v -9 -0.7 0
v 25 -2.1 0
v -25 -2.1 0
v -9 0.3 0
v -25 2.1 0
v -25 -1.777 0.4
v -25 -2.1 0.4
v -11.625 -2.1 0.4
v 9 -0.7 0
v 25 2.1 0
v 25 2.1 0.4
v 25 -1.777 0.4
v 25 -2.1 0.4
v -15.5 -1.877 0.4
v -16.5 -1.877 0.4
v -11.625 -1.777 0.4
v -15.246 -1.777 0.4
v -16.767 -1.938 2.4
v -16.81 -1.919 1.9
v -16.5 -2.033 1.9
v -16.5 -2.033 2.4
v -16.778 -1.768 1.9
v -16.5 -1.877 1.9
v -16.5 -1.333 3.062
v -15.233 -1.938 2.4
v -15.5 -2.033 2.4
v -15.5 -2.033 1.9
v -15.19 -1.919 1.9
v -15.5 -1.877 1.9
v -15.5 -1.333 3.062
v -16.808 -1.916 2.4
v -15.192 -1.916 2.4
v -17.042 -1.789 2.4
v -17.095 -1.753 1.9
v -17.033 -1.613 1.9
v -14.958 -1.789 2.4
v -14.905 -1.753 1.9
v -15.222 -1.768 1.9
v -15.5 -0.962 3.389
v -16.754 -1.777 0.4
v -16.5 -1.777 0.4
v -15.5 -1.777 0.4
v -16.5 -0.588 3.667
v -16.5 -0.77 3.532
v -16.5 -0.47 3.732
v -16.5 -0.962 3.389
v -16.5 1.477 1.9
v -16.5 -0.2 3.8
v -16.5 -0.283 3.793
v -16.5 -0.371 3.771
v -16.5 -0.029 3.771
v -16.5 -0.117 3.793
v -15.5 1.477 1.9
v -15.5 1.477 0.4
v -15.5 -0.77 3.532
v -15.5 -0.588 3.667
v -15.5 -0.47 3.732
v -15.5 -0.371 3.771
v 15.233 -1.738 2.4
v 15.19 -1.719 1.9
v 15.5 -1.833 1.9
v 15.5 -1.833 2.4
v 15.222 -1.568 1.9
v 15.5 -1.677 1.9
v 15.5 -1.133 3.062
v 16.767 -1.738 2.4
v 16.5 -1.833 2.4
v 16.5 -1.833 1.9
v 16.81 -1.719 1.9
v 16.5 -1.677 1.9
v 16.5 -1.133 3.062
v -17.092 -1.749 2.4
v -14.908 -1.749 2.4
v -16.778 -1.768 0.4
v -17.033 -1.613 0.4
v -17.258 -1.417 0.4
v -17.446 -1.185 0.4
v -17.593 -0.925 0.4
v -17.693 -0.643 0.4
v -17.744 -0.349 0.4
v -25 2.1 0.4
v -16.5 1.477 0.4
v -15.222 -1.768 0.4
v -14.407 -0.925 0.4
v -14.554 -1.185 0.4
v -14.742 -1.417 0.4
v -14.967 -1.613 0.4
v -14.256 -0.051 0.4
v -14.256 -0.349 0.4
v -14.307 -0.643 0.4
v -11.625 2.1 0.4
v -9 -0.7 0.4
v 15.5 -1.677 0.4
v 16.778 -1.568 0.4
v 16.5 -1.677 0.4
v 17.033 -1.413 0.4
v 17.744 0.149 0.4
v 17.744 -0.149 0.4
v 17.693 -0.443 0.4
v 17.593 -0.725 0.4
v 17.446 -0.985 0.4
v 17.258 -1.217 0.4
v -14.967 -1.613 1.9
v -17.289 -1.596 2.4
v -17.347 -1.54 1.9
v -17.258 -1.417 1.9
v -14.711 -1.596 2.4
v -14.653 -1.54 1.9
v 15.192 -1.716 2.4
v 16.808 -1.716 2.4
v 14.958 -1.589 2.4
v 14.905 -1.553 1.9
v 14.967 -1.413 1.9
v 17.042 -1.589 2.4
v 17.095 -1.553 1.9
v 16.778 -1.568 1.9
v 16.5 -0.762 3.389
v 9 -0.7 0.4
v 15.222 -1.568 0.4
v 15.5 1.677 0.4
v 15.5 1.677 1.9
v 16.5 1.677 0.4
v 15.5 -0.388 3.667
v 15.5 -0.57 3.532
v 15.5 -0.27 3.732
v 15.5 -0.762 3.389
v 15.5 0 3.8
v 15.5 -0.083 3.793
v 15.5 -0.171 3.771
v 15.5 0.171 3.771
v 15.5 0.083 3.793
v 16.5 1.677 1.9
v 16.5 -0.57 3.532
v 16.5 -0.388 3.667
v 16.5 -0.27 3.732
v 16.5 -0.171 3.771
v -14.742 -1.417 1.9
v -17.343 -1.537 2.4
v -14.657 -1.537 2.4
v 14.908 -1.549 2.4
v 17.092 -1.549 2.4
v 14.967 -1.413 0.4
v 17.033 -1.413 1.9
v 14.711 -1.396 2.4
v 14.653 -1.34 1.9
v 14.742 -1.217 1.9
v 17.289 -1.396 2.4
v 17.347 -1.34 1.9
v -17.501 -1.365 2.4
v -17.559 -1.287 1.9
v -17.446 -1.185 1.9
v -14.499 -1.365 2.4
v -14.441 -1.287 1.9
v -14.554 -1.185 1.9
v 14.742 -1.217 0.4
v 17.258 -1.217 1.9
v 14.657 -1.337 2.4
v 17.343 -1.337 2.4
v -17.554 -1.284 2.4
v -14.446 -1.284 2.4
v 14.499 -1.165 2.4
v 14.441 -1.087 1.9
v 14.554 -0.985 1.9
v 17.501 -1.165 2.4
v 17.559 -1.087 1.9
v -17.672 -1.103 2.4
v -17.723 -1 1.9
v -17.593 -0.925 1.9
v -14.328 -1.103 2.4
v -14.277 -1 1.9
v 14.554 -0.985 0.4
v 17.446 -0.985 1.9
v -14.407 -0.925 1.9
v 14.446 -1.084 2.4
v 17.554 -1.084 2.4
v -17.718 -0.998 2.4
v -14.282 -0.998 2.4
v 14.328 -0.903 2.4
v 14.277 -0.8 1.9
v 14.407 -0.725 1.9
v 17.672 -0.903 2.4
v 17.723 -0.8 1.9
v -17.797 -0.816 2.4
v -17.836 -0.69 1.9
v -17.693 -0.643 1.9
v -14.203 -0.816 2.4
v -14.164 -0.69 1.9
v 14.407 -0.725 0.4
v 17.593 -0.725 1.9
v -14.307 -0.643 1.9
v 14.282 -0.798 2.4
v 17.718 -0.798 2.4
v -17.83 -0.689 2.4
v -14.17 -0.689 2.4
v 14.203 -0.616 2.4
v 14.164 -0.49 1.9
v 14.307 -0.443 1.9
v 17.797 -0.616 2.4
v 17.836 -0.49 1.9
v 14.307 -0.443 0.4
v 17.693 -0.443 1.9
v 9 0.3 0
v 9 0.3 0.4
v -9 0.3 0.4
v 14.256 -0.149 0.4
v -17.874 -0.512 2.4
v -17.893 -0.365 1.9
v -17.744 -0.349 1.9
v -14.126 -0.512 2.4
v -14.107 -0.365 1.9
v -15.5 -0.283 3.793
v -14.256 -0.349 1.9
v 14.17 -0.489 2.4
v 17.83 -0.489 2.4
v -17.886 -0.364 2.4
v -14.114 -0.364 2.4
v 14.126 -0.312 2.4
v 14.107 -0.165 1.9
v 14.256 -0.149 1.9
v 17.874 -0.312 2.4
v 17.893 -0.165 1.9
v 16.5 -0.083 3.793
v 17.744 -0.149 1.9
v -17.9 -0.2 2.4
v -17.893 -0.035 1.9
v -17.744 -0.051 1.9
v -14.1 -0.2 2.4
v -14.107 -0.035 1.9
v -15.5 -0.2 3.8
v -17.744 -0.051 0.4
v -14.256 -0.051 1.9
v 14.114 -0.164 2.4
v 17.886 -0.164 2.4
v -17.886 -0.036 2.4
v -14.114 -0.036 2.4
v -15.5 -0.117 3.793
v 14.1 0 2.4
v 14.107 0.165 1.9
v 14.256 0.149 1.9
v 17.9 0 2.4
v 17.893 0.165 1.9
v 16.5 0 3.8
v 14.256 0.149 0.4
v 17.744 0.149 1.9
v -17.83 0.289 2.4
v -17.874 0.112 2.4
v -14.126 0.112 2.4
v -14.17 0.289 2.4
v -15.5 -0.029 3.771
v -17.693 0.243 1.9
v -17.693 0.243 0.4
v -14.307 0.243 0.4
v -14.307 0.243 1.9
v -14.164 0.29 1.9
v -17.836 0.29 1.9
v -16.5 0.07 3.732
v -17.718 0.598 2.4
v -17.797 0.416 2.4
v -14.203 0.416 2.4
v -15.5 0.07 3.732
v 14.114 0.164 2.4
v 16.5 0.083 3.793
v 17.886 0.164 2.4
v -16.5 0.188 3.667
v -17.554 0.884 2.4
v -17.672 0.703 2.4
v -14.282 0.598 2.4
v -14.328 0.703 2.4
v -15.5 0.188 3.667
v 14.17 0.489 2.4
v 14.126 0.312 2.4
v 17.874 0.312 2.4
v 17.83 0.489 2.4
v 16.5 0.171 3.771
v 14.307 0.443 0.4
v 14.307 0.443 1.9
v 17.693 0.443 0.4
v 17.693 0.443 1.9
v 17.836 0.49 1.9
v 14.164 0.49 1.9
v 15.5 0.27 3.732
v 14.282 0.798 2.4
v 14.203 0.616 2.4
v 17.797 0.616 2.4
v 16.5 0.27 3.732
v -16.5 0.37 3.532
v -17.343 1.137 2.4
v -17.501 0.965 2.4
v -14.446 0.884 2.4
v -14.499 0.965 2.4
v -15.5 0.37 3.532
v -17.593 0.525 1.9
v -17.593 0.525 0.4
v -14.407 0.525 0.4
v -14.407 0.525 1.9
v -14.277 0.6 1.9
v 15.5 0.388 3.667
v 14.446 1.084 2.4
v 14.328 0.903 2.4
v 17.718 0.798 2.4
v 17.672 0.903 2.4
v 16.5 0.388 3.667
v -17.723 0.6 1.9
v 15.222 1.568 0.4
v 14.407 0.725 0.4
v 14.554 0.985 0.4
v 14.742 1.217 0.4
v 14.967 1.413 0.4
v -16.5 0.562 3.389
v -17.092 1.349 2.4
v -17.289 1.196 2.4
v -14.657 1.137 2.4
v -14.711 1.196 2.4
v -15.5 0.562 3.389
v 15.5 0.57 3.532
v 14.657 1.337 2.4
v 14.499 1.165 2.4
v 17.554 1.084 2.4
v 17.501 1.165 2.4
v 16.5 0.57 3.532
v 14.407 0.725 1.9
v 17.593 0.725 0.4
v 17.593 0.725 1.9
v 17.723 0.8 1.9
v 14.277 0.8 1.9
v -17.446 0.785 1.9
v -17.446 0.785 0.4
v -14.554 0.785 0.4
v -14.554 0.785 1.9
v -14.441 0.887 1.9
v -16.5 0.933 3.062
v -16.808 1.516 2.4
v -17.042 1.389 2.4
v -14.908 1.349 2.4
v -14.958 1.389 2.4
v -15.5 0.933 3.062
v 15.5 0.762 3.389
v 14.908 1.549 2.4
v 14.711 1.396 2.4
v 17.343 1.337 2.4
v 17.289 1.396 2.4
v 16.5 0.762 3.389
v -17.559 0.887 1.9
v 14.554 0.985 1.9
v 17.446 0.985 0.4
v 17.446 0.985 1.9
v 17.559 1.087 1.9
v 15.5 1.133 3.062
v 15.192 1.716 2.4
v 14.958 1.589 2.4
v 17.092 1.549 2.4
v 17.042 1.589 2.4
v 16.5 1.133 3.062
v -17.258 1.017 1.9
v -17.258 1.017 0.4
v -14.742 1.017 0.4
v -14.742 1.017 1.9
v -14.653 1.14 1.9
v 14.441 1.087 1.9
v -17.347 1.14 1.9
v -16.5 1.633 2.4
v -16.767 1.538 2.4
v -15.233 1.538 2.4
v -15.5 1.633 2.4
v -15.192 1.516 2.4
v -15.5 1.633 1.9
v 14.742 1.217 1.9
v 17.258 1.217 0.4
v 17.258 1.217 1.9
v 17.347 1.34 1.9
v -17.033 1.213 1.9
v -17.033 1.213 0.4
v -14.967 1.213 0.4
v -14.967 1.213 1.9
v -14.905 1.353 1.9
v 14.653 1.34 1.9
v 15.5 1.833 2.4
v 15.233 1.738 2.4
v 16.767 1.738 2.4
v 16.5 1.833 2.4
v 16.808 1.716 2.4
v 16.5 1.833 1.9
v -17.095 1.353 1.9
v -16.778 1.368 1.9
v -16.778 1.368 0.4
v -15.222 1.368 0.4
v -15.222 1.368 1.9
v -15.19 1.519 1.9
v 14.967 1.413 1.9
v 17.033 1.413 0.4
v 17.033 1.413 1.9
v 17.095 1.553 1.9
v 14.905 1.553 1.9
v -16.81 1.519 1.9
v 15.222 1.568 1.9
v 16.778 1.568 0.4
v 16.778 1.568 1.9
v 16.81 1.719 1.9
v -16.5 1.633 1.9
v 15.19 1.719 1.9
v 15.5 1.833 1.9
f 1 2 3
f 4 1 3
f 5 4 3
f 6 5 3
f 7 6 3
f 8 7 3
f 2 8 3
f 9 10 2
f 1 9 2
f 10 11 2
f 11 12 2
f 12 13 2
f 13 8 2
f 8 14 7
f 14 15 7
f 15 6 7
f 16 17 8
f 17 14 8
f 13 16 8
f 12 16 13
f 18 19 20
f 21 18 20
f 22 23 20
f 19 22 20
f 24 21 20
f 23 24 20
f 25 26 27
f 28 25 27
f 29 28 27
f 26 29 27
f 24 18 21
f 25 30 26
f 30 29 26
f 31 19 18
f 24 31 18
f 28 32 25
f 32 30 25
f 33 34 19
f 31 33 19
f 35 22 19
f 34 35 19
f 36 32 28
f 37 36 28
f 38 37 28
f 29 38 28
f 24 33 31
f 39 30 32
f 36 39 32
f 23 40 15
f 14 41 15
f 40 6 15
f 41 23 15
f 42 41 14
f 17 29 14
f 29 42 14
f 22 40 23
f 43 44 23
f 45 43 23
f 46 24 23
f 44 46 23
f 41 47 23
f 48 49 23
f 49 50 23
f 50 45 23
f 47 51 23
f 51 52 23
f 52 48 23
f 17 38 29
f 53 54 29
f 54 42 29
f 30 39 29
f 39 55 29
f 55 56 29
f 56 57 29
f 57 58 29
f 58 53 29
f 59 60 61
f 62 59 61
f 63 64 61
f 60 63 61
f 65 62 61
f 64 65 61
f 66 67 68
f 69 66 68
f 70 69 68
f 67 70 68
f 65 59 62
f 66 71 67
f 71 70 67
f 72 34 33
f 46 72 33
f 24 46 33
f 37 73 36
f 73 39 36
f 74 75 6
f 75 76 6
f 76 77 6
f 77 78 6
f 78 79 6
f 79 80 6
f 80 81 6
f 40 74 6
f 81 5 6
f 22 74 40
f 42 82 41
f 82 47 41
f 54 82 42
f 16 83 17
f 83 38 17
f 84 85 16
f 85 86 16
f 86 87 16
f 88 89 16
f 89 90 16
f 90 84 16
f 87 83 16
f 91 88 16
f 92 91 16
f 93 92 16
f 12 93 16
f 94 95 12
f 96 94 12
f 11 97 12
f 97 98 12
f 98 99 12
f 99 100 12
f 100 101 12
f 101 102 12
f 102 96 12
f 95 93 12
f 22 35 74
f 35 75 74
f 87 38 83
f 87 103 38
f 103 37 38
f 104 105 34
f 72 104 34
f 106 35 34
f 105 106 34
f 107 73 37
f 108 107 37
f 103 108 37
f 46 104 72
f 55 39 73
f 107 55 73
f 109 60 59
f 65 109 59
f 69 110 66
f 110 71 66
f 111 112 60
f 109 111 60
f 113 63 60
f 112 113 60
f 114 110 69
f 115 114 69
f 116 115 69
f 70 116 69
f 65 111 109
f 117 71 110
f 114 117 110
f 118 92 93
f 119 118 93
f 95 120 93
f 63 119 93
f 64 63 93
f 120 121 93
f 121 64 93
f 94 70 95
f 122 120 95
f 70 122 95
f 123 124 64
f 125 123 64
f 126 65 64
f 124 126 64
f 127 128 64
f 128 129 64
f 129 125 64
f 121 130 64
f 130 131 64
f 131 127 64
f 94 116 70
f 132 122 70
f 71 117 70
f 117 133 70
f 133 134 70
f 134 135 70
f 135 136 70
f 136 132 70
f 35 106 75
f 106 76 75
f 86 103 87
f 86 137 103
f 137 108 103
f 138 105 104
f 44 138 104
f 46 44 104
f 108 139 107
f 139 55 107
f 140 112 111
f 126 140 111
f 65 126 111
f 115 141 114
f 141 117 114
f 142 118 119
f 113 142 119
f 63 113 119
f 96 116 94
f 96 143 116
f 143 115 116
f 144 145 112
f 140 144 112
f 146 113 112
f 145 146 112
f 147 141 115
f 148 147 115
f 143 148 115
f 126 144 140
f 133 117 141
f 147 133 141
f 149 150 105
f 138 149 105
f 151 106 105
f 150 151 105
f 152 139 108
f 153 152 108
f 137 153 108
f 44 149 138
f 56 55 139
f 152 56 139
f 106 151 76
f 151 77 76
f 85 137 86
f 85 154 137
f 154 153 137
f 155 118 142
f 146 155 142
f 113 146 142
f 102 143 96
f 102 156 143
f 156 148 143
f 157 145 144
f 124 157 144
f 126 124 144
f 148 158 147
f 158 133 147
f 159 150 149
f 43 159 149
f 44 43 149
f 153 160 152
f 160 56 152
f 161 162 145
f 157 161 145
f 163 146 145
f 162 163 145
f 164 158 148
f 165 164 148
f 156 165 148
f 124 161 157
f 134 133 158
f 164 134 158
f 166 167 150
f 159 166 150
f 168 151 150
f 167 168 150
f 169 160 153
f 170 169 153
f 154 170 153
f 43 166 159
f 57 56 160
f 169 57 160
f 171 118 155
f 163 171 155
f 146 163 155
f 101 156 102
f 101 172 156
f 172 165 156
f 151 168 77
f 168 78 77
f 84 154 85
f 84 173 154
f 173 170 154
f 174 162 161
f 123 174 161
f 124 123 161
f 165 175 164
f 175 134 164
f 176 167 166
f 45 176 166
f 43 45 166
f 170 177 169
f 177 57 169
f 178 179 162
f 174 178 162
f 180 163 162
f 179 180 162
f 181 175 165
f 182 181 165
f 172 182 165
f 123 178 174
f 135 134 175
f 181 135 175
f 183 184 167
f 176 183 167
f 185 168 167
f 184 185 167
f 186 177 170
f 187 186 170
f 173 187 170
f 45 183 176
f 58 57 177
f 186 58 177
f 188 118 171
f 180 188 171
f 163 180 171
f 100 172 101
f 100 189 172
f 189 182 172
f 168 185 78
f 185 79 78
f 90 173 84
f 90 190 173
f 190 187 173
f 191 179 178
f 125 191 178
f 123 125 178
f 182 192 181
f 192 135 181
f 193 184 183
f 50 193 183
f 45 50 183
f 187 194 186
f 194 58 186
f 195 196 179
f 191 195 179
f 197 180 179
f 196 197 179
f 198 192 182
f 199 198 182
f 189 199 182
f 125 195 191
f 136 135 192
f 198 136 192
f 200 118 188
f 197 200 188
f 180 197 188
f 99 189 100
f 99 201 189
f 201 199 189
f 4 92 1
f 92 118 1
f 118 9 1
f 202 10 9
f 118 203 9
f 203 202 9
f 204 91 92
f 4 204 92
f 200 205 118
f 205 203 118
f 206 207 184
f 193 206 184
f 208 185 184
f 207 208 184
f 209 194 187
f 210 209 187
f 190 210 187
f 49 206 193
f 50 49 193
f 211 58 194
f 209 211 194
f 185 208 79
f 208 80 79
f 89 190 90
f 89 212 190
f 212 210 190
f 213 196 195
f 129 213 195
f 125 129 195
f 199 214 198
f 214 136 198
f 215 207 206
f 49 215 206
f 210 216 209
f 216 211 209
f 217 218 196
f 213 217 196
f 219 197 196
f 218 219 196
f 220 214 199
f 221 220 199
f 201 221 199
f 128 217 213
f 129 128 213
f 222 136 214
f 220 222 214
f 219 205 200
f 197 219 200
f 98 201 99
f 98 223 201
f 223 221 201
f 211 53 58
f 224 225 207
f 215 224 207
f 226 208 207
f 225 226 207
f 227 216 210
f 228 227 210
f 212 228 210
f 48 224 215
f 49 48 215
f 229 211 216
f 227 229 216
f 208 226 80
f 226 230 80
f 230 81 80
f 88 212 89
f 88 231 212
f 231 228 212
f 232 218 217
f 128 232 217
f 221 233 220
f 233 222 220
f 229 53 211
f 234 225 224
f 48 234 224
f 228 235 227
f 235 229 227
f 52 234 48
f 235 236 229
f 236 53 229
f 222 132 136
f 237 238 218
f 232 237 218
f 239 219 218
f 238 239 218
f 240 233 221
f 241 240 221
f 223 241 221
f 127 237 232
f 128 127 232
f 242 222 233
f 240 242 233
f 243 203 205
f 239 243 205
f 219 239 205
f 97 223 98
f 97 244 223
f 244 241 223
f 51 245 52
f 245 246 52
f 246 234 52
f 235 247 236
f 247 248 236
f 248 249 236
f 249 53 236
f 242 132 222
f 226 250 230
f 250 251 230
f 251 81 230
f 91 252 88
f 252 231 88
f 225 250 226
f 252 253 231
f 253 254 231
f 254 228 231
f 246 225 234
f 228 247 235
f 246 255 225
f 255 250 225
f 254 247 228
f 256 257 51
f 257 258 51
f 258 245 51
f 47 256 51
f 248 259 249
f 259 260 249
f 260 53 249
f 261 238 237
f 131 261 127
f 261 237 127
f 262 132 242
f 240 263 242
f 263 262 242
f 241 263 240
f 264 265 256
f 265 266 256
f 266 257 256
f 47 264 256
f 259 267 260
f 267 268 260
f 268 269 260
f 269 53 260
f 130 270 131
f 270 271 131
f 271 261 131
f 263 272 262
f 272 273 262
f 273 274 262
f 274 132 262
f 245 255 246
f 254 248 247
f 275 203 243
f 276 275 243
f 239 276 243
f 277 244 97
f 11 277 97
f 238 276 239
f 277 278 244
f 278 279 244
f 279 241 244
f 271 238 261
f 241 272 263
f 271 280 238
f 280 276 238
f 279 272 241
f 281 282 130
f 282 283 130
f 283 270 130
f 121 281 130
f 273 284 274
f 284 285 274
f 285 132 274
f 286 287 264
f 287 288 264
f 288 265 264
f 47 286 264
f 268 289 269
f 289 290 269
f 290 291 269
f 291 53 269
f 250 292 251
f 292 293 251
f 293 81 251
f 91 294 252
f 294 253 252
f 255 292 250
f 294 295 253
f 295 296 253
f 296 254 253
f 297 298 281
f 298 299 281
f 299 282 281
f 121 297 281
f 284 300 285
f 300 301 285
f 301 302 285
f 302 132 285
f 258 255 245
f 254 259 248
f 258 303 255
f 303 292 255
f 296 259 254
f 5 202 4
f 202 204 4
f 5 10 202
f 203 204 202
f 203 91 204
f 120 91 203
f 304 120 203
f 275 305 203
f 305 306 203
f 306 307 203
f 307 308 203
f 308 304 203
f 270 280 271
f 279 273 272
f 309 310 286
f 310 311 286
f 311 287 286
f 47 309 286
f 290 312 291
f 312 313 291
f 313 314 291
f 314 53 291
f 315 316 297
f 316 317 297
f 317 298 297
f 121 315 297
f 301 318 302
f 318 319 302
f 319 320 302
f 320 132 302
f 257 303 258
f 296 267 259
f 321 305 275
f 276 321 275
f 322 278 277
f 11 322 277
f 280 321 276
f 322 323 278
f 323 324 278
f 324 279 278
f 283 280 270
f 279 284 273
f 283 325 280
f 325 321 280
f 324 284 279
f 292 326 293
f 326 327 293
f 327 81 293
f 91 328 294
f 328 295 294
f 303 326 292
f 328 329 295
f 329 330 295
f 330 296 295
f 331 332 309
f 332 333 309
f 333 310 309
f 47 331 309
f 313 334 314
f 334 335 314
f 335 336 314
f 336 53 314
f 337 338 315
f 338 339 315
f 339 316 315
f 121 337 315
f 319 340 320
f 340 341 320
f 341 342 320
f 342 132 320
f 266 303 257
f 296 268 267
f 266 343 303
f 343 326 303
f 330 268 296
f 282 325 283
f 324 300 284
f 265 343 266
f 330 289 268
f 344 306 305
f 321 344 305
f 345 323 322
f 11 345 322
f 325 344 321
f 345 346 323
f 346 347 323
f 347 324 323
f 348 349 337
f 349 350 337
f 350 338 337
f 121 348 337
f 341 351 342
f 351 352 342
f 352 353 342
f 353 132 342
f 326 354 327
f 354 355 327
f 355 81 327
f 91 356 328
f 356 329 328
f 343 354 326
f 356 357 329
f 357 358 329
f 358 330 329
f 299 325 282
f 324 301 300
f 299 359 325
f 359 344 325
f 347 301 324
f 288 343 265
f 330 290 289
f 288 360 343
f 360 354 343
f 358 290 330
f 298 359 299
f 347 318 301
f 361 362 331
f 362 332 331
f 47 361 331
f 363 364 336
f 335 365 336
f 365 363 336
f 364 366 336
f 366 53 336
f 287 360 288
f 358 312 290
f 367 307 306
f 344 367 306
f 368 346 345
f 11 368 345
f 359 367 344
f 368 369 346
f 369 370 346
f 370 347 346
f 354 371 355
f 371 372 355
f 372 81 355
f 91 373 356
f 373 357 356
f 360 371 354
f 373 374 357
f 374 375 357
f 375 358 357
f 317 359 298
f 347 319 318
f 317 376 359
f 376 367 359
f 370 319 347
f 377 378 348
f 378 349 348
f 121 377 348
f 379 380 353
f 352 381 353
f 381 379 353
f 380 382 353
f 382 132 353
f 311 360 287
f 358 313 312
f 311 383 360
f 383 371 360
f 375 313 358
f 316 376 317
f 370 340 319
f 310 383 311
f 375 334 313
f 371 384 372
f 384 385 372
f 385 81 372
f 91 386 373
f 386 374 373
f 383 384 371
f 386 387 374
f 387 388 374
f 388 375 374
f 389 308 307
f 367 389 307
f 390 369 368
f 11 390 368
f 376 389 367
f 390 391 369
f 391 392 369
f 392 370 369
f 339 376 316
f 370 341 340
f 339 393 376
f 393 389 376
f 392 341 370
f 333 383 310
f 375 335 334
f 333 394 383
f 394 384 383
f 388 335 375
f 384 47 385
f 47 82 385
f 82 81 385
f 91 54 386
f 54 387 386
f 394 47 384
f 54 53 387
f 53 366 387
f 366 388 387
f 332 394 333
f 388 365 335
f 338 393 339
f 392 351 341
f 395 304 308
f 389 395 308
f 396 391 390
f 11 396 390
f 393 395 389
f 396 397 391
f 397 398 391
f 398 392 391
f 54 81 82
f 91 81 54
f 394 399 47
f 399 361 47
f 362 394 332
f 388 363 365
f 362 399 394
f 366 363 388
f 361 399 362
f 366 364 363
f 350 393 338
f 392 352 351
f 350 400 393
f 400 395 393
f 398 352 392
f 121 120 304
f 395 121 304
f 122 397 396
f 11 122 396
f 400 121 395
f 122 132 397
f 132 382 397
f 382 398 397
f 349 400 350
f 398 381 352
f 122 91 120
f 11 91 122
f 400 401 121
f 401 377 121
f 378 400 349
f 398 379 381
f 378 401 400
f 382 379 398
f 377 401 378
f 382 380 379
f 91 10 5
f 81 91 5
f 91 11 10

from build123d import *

# Parameters (mm, degrees)
SKICA2_W                 = 50
SKICA2_H                 = 4.2
SKICA2_W_2               = 18
SKICA2_H_2               = 1
P_IDAT_VYSUNUT_M2_DEPTH  = 0.4
SKICA3_R                 = 1.75
P_IDAT_VYSUNUT_M3_DEPTH  = 1.5
SKICA5_R                 = 1.9
P_IDAT_VYSUNUT_M5_DEPTH  = 2
ZKOSEN_2_SIZE            = 1.5
SKICA7_W                 = 1
SKICA7_H                 = 5
ODEBRAT_VYSUNUT_M1_DEPTH = 3.5


with BuildPart() as part:
    # Skica2 → Přidat vysunutím2 (new body)
    with BuildSketch(Plane.XY):
        Rectangle(SKICA2_W, SKICA2_H)
        with Locations((0, -0.2)):
            Rectangle(SKICA2_W_2, SKICA2_H_2, mode=Mode.SUBTRACT)
    extrude(amount=P_IDAT_VYSUNUT_M2_DEPTH)

    # Skica3 → Přidat vysunutím3 (add)
    with BuildSketch(Plane.XY.offset(0.4)):
        with Locations((-16, -0.2)):
            Circle(SKICA3_R)
        with Locations((16, 0)):
            Circle(SKICA3_R)
    extrude(amount=P_IDAT_VYSUNUT_M3_DEPTH)

    # Skica5 → Přidat vysunutím5 (add)
    with BuildSketch(Plane.XY.offset(1.9)):
        with Locations((-16, -0.2)):
            Circle(SKICA5_R)
        with Locations((16, 0)):
            Circle(SKICA5_R)
    extrude(amount=P_IDAT_VYSUNUT_M5_DEPTH)

    # Zkosení2
    zkosen_2_edges = [part.edges().sort_by_distance(p)[0] for p in [
        (-17.9, -0.2, 3.9),
        (14.1, 0, 3.9),
    ]]
    chamfer(zkosen_2_edges, length=ZKOSEN_2_SIZE)

    # Skica7 → Odebrat vysunutím1 (cut)
    with BuildSketch(Plane.XY.offset(3.9)):
        with Locations((-16, -0.2)):
            Rectangle(SKICA7_W, SKICA7_H)
        with Locations((16, 0)):
            Rectangle(SKICA7_W, SKICA7_H)
    extrude(amount=-ODEBRAT_VYSUNUT_M1_DEPTH, mode=Mode.SUBTRACT)


solid = part.part
